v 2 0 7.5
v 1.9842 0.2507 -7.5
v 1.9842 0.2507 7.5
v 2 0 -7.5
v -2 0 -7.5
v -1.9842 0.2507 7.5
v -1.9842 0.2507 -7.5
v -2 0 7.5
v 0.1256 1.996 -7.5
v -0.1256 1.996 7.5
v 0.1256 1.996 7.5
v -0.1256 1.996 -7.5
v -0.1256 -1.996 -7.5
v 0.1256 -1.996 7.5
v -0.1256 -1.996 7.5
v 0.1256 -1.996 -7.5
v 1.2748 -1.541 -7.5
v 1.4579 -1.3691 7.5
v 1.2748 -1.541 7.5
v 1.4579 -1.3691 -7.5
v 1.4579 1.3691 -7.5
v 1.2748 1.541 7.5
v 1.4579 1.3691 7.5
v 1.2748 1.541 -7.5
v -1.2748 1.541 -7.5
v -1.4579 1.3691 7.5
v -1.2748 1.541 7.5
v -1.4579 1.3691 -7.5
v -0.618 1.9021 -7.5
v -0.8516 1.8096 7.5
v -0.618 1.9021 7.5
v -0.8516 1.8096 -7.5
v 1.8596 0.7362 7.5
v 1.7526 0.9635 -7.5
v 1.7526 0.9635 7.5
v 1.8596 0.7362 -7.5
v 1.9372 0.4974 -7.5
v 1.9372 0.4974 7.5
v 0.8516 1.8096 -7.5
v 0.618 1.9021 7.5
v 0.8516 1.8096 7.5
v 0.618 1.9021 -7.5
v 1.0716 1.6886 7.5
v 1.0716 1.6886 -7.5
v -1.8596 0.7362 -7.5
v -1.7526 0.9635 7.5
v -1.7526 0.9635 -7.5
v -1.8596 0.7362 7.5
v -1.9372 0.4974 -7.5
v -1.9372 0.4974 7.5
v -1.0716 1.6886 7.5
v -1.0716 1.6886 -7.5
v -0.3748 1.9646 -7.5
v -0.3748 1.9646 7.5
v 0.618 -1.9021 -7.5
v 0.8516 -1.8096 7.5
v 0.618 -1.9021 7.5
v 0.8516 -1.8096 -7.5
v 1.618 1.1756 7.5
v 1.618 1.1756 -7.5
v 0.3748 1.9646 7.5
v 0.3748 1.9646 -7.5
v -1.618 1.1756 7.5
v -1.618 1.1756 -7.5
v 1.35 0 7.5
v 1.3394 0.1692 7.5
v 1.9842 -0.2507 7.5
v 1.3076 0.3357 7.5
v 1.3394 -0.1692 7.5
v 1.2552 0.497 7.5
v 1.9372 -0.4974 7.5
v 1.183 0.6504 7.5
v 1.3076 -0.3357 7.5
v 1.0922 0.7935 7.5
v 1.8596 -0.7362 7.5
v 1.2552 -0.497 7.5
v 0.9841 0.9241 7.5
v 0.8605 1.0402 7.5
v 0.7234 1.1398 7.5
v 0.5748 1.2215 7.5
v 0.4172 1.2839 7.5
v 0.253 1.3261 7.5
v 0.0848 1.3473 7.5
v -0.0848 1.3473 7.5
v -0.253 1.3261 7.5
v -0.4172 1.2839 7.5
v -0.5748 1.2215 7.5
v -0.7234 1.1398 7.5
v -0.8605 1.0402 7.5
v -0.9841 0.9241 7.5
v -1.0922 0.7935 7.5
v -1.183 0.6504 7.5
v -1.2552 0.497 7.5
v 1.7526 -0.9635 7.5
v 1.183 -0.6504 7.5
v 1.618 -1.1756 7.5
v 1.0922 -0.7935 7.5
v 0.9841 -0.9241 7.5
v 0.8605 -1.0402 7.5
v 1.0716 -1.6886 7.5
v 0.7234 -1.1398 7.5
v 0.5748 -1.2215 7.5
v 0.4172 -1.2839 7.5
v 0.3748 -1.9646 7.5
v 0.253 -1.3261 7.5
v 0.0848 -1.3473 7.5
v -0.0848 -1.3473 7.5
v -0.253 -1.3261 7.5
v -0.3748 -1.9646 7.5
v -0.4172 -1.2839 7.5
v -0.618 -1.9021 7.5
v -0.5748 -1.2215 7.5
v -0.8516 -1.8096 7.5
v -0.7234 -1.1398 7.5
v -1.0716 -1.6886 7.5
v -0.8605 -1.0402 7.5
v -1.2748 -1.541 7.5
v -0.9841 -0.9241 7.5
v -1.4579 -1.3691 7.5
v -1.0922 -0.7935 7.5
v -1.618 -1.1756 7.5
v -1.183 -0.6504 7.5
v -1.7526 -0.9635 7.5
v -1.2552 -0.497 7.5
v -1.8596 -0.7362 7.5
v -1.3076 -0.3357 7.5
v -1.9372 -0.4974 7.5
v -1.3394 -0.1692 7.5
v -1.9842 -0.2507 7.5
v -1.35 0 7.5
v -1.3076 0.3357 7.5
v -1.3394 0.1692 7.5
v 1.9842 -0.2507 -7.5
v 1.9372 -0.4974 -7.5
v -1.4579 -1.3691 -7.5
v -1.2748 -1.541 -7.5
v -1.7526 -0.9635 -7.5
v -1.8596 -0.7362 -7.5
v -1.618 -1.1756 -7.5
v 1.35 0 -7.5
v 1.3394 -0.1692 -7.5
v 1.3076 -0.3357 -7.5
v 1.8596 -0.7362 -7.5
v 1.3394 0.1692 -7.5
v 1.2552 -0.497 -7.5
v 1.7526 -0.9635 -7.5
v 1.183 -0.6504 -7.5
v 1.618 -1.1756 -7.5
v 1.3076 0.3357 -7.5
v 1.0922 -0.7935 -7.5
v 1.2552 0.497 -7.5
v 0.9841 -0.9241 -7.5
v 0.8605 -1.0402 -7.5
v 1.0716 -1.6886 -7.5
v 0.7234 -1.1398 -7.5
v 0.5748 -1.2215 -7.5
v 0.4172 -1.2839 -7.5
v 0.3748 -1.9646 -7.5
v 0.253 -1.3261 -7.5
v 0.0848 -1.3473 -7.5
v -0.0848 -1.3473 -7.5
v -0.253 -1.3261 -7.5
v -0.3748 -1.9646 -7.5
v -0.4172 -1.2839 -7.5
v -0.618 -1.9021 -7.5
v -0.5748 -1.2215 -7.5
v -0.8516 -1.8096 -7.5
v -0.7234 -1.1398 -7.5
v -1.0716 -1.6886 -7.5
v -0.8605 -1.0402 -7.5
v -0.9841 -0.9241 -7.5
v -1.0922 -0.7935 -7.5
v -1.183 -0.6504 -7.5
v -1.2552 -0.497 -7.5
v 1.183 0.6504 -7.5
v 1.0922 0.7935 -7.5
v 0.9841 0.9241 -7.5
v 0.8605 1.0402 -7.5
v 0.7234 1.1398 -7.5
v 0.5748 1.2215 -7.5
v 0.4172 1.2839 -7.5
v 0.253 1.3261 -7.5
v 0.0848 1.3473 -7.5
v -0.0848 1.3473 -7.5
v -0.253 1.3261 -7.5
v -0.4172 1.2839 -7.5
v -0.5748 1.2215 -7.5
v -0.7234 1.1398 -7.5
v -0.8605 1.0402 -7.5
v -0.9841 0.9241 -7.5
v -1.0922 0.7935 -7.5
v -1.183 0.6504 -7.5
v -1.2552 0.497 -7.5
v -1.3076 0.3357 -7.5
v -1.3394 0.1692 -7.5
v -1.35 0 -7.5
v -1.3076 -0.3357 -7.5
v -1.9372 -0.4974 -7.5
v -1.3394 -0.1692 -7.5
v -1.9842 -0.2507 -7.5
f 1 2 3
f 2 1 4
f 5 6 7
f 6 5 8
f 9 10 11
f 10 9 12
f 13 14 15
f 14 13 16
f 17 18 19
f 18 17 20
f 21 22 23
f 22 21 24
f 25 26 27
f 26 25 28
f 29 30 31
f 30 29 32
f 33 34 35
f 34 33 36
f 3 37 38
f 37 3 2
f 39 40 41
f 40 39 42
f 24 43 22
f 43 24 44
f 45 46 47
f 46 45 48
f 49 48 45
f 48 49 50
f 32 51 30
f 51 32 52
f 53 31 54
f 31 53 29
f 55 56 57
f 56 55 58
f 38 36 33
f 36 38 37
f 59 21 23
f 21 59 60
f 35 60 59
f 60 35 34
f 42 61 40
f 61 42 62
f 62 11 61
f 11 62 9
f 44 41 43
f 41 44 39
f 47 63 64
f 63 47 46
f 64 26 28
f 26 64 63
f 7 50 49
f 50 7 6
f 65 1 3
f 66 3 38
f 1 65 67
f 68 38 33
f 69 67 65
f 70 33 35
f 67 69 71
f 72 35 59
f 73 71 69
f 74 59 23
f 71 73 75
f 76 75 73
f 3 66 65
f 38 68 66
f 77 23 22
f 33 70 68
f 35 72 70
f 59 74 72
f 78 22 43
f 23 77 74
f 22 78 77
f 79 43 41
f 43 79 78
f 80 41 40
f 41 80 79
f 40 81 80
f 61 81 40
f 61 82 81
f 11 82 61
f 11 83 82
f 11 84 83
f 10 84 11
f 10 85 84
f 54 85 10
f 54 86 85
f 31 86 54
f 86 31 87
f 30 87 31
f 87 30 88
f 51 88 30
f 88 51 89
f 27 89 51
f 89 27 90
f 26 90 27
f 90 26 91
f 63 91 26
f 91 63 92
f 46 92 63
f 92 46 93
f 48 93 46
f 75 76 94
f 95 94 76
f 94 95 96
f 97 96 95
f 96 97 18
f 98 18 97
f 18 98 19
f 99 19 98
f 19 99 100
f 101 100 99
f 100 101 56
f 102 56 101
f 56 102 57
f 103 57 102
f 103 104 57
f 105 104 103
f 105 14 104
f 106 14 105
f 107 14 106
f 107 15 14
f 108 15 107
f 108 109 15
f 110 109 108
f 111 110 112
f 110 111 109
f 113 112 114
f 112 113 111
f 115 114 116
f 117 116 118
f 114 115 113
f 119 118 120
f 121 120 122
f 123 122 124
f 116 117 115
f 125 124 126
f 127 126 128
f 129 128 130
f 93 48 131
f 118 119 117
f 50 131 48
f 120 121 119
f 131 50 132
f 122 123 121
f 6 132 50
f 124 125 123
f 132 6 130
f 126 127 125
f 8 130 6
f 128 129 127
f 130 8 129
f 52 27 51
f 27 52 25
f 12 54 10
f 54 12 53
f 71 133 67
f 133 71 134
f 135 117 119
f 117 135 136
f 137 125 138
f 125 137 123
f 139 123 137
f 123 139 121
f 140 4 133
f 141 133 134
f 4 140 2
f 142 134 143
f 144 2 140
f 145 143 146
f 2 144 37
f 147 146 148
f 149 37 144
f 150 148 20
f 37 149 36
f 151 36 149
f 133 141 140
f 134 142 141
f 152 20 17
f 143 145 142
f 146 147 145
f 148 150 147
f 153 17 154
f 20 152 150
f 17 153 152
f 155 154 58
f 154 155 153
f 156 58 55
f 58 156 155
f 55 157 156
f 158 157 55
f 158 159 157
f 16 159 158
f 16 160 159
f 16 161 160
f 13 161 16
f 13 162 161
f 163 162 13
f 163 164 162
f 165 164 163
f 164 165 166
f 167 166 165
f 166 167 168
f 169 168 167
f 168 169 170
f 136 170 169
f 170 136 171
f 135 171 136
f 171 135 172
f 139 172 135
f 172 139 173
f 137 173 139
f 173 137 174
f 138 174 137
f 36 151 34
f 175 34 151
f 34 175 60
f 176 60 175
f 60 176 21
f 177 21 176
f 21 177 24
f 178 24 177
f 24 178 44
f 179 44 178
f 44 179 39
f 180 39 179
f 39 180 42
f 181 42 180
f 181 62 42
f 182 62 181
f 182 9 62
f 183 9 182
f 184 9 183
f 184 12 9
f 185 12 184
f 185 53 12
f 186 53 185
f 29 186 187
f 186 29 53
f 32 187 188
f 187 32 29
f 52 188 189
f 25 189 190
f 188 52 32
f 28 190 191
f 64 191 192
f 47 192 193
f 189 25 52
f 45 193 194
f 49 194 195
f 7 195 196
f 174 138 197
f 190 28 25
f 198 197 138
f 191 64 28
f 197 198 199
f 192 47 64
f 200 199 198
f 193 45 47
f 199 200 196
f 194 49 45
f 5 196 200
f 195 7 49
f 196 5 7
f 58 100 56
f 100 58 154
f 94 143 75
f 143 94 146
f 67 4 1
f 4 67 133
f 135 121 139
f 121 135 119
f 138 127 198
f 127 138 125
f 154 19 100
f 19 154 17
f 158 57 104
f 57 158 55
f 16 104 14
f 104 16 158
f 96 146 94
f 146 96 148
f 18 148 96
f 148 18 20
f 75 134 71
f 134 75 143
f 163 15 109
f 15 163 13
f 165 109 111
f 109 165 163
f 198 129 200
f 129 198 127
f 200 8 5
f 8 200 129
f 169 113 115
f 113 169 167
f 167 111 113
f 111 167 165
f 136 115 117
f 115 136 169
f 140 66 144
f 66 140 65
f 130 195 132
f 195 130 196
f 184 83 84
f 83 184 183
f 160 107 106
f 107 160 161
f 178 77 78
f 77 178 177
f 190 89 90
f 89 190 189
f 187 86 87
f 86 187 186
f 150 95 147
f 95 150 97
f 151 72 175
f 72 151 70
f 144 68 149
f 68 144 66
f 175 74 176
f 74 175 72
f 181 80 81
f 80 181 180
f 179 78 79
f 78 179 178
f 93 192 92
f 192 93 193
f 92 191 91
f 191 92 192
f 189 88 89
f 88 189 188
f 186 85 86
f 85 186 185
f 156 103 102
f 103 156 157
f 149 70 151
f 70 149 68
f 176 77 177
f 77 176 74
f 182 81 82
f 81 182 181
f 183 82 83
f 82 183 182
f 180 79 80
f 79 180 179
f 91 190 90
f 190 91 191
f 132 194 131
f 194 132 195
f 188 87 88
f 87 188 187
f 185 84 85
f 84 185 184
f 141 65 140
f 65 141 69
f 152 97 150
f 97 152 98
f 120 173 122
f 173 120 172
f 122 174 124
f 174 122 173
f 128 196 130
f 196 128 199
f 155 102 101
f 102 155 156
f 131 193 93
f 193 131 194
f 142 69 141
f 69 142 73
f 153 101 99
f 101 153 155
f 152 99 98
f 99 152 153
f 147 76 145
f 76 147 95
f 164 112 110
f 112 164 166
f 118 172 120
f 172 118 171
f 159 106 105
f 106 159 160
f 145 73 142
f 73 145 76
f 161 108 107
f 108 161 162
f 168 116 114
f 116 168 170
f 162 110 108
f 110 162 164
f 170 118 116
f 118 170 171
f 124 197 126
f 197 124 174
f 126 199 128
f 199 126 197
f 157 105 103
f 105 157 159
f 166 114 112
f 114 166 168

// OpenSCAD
$fn = 50;


difference() {
	union() {
		translate(v = [0, 0, -7.5000000000]) {
			cylinder(h = 15, r = 2.0000000000);
		}
	}
	union() {
		translate(v = [0, 0, -100.0000000000]) {
			cylinder(h = 200, r = 1.3500000000);
		}
	}
}
